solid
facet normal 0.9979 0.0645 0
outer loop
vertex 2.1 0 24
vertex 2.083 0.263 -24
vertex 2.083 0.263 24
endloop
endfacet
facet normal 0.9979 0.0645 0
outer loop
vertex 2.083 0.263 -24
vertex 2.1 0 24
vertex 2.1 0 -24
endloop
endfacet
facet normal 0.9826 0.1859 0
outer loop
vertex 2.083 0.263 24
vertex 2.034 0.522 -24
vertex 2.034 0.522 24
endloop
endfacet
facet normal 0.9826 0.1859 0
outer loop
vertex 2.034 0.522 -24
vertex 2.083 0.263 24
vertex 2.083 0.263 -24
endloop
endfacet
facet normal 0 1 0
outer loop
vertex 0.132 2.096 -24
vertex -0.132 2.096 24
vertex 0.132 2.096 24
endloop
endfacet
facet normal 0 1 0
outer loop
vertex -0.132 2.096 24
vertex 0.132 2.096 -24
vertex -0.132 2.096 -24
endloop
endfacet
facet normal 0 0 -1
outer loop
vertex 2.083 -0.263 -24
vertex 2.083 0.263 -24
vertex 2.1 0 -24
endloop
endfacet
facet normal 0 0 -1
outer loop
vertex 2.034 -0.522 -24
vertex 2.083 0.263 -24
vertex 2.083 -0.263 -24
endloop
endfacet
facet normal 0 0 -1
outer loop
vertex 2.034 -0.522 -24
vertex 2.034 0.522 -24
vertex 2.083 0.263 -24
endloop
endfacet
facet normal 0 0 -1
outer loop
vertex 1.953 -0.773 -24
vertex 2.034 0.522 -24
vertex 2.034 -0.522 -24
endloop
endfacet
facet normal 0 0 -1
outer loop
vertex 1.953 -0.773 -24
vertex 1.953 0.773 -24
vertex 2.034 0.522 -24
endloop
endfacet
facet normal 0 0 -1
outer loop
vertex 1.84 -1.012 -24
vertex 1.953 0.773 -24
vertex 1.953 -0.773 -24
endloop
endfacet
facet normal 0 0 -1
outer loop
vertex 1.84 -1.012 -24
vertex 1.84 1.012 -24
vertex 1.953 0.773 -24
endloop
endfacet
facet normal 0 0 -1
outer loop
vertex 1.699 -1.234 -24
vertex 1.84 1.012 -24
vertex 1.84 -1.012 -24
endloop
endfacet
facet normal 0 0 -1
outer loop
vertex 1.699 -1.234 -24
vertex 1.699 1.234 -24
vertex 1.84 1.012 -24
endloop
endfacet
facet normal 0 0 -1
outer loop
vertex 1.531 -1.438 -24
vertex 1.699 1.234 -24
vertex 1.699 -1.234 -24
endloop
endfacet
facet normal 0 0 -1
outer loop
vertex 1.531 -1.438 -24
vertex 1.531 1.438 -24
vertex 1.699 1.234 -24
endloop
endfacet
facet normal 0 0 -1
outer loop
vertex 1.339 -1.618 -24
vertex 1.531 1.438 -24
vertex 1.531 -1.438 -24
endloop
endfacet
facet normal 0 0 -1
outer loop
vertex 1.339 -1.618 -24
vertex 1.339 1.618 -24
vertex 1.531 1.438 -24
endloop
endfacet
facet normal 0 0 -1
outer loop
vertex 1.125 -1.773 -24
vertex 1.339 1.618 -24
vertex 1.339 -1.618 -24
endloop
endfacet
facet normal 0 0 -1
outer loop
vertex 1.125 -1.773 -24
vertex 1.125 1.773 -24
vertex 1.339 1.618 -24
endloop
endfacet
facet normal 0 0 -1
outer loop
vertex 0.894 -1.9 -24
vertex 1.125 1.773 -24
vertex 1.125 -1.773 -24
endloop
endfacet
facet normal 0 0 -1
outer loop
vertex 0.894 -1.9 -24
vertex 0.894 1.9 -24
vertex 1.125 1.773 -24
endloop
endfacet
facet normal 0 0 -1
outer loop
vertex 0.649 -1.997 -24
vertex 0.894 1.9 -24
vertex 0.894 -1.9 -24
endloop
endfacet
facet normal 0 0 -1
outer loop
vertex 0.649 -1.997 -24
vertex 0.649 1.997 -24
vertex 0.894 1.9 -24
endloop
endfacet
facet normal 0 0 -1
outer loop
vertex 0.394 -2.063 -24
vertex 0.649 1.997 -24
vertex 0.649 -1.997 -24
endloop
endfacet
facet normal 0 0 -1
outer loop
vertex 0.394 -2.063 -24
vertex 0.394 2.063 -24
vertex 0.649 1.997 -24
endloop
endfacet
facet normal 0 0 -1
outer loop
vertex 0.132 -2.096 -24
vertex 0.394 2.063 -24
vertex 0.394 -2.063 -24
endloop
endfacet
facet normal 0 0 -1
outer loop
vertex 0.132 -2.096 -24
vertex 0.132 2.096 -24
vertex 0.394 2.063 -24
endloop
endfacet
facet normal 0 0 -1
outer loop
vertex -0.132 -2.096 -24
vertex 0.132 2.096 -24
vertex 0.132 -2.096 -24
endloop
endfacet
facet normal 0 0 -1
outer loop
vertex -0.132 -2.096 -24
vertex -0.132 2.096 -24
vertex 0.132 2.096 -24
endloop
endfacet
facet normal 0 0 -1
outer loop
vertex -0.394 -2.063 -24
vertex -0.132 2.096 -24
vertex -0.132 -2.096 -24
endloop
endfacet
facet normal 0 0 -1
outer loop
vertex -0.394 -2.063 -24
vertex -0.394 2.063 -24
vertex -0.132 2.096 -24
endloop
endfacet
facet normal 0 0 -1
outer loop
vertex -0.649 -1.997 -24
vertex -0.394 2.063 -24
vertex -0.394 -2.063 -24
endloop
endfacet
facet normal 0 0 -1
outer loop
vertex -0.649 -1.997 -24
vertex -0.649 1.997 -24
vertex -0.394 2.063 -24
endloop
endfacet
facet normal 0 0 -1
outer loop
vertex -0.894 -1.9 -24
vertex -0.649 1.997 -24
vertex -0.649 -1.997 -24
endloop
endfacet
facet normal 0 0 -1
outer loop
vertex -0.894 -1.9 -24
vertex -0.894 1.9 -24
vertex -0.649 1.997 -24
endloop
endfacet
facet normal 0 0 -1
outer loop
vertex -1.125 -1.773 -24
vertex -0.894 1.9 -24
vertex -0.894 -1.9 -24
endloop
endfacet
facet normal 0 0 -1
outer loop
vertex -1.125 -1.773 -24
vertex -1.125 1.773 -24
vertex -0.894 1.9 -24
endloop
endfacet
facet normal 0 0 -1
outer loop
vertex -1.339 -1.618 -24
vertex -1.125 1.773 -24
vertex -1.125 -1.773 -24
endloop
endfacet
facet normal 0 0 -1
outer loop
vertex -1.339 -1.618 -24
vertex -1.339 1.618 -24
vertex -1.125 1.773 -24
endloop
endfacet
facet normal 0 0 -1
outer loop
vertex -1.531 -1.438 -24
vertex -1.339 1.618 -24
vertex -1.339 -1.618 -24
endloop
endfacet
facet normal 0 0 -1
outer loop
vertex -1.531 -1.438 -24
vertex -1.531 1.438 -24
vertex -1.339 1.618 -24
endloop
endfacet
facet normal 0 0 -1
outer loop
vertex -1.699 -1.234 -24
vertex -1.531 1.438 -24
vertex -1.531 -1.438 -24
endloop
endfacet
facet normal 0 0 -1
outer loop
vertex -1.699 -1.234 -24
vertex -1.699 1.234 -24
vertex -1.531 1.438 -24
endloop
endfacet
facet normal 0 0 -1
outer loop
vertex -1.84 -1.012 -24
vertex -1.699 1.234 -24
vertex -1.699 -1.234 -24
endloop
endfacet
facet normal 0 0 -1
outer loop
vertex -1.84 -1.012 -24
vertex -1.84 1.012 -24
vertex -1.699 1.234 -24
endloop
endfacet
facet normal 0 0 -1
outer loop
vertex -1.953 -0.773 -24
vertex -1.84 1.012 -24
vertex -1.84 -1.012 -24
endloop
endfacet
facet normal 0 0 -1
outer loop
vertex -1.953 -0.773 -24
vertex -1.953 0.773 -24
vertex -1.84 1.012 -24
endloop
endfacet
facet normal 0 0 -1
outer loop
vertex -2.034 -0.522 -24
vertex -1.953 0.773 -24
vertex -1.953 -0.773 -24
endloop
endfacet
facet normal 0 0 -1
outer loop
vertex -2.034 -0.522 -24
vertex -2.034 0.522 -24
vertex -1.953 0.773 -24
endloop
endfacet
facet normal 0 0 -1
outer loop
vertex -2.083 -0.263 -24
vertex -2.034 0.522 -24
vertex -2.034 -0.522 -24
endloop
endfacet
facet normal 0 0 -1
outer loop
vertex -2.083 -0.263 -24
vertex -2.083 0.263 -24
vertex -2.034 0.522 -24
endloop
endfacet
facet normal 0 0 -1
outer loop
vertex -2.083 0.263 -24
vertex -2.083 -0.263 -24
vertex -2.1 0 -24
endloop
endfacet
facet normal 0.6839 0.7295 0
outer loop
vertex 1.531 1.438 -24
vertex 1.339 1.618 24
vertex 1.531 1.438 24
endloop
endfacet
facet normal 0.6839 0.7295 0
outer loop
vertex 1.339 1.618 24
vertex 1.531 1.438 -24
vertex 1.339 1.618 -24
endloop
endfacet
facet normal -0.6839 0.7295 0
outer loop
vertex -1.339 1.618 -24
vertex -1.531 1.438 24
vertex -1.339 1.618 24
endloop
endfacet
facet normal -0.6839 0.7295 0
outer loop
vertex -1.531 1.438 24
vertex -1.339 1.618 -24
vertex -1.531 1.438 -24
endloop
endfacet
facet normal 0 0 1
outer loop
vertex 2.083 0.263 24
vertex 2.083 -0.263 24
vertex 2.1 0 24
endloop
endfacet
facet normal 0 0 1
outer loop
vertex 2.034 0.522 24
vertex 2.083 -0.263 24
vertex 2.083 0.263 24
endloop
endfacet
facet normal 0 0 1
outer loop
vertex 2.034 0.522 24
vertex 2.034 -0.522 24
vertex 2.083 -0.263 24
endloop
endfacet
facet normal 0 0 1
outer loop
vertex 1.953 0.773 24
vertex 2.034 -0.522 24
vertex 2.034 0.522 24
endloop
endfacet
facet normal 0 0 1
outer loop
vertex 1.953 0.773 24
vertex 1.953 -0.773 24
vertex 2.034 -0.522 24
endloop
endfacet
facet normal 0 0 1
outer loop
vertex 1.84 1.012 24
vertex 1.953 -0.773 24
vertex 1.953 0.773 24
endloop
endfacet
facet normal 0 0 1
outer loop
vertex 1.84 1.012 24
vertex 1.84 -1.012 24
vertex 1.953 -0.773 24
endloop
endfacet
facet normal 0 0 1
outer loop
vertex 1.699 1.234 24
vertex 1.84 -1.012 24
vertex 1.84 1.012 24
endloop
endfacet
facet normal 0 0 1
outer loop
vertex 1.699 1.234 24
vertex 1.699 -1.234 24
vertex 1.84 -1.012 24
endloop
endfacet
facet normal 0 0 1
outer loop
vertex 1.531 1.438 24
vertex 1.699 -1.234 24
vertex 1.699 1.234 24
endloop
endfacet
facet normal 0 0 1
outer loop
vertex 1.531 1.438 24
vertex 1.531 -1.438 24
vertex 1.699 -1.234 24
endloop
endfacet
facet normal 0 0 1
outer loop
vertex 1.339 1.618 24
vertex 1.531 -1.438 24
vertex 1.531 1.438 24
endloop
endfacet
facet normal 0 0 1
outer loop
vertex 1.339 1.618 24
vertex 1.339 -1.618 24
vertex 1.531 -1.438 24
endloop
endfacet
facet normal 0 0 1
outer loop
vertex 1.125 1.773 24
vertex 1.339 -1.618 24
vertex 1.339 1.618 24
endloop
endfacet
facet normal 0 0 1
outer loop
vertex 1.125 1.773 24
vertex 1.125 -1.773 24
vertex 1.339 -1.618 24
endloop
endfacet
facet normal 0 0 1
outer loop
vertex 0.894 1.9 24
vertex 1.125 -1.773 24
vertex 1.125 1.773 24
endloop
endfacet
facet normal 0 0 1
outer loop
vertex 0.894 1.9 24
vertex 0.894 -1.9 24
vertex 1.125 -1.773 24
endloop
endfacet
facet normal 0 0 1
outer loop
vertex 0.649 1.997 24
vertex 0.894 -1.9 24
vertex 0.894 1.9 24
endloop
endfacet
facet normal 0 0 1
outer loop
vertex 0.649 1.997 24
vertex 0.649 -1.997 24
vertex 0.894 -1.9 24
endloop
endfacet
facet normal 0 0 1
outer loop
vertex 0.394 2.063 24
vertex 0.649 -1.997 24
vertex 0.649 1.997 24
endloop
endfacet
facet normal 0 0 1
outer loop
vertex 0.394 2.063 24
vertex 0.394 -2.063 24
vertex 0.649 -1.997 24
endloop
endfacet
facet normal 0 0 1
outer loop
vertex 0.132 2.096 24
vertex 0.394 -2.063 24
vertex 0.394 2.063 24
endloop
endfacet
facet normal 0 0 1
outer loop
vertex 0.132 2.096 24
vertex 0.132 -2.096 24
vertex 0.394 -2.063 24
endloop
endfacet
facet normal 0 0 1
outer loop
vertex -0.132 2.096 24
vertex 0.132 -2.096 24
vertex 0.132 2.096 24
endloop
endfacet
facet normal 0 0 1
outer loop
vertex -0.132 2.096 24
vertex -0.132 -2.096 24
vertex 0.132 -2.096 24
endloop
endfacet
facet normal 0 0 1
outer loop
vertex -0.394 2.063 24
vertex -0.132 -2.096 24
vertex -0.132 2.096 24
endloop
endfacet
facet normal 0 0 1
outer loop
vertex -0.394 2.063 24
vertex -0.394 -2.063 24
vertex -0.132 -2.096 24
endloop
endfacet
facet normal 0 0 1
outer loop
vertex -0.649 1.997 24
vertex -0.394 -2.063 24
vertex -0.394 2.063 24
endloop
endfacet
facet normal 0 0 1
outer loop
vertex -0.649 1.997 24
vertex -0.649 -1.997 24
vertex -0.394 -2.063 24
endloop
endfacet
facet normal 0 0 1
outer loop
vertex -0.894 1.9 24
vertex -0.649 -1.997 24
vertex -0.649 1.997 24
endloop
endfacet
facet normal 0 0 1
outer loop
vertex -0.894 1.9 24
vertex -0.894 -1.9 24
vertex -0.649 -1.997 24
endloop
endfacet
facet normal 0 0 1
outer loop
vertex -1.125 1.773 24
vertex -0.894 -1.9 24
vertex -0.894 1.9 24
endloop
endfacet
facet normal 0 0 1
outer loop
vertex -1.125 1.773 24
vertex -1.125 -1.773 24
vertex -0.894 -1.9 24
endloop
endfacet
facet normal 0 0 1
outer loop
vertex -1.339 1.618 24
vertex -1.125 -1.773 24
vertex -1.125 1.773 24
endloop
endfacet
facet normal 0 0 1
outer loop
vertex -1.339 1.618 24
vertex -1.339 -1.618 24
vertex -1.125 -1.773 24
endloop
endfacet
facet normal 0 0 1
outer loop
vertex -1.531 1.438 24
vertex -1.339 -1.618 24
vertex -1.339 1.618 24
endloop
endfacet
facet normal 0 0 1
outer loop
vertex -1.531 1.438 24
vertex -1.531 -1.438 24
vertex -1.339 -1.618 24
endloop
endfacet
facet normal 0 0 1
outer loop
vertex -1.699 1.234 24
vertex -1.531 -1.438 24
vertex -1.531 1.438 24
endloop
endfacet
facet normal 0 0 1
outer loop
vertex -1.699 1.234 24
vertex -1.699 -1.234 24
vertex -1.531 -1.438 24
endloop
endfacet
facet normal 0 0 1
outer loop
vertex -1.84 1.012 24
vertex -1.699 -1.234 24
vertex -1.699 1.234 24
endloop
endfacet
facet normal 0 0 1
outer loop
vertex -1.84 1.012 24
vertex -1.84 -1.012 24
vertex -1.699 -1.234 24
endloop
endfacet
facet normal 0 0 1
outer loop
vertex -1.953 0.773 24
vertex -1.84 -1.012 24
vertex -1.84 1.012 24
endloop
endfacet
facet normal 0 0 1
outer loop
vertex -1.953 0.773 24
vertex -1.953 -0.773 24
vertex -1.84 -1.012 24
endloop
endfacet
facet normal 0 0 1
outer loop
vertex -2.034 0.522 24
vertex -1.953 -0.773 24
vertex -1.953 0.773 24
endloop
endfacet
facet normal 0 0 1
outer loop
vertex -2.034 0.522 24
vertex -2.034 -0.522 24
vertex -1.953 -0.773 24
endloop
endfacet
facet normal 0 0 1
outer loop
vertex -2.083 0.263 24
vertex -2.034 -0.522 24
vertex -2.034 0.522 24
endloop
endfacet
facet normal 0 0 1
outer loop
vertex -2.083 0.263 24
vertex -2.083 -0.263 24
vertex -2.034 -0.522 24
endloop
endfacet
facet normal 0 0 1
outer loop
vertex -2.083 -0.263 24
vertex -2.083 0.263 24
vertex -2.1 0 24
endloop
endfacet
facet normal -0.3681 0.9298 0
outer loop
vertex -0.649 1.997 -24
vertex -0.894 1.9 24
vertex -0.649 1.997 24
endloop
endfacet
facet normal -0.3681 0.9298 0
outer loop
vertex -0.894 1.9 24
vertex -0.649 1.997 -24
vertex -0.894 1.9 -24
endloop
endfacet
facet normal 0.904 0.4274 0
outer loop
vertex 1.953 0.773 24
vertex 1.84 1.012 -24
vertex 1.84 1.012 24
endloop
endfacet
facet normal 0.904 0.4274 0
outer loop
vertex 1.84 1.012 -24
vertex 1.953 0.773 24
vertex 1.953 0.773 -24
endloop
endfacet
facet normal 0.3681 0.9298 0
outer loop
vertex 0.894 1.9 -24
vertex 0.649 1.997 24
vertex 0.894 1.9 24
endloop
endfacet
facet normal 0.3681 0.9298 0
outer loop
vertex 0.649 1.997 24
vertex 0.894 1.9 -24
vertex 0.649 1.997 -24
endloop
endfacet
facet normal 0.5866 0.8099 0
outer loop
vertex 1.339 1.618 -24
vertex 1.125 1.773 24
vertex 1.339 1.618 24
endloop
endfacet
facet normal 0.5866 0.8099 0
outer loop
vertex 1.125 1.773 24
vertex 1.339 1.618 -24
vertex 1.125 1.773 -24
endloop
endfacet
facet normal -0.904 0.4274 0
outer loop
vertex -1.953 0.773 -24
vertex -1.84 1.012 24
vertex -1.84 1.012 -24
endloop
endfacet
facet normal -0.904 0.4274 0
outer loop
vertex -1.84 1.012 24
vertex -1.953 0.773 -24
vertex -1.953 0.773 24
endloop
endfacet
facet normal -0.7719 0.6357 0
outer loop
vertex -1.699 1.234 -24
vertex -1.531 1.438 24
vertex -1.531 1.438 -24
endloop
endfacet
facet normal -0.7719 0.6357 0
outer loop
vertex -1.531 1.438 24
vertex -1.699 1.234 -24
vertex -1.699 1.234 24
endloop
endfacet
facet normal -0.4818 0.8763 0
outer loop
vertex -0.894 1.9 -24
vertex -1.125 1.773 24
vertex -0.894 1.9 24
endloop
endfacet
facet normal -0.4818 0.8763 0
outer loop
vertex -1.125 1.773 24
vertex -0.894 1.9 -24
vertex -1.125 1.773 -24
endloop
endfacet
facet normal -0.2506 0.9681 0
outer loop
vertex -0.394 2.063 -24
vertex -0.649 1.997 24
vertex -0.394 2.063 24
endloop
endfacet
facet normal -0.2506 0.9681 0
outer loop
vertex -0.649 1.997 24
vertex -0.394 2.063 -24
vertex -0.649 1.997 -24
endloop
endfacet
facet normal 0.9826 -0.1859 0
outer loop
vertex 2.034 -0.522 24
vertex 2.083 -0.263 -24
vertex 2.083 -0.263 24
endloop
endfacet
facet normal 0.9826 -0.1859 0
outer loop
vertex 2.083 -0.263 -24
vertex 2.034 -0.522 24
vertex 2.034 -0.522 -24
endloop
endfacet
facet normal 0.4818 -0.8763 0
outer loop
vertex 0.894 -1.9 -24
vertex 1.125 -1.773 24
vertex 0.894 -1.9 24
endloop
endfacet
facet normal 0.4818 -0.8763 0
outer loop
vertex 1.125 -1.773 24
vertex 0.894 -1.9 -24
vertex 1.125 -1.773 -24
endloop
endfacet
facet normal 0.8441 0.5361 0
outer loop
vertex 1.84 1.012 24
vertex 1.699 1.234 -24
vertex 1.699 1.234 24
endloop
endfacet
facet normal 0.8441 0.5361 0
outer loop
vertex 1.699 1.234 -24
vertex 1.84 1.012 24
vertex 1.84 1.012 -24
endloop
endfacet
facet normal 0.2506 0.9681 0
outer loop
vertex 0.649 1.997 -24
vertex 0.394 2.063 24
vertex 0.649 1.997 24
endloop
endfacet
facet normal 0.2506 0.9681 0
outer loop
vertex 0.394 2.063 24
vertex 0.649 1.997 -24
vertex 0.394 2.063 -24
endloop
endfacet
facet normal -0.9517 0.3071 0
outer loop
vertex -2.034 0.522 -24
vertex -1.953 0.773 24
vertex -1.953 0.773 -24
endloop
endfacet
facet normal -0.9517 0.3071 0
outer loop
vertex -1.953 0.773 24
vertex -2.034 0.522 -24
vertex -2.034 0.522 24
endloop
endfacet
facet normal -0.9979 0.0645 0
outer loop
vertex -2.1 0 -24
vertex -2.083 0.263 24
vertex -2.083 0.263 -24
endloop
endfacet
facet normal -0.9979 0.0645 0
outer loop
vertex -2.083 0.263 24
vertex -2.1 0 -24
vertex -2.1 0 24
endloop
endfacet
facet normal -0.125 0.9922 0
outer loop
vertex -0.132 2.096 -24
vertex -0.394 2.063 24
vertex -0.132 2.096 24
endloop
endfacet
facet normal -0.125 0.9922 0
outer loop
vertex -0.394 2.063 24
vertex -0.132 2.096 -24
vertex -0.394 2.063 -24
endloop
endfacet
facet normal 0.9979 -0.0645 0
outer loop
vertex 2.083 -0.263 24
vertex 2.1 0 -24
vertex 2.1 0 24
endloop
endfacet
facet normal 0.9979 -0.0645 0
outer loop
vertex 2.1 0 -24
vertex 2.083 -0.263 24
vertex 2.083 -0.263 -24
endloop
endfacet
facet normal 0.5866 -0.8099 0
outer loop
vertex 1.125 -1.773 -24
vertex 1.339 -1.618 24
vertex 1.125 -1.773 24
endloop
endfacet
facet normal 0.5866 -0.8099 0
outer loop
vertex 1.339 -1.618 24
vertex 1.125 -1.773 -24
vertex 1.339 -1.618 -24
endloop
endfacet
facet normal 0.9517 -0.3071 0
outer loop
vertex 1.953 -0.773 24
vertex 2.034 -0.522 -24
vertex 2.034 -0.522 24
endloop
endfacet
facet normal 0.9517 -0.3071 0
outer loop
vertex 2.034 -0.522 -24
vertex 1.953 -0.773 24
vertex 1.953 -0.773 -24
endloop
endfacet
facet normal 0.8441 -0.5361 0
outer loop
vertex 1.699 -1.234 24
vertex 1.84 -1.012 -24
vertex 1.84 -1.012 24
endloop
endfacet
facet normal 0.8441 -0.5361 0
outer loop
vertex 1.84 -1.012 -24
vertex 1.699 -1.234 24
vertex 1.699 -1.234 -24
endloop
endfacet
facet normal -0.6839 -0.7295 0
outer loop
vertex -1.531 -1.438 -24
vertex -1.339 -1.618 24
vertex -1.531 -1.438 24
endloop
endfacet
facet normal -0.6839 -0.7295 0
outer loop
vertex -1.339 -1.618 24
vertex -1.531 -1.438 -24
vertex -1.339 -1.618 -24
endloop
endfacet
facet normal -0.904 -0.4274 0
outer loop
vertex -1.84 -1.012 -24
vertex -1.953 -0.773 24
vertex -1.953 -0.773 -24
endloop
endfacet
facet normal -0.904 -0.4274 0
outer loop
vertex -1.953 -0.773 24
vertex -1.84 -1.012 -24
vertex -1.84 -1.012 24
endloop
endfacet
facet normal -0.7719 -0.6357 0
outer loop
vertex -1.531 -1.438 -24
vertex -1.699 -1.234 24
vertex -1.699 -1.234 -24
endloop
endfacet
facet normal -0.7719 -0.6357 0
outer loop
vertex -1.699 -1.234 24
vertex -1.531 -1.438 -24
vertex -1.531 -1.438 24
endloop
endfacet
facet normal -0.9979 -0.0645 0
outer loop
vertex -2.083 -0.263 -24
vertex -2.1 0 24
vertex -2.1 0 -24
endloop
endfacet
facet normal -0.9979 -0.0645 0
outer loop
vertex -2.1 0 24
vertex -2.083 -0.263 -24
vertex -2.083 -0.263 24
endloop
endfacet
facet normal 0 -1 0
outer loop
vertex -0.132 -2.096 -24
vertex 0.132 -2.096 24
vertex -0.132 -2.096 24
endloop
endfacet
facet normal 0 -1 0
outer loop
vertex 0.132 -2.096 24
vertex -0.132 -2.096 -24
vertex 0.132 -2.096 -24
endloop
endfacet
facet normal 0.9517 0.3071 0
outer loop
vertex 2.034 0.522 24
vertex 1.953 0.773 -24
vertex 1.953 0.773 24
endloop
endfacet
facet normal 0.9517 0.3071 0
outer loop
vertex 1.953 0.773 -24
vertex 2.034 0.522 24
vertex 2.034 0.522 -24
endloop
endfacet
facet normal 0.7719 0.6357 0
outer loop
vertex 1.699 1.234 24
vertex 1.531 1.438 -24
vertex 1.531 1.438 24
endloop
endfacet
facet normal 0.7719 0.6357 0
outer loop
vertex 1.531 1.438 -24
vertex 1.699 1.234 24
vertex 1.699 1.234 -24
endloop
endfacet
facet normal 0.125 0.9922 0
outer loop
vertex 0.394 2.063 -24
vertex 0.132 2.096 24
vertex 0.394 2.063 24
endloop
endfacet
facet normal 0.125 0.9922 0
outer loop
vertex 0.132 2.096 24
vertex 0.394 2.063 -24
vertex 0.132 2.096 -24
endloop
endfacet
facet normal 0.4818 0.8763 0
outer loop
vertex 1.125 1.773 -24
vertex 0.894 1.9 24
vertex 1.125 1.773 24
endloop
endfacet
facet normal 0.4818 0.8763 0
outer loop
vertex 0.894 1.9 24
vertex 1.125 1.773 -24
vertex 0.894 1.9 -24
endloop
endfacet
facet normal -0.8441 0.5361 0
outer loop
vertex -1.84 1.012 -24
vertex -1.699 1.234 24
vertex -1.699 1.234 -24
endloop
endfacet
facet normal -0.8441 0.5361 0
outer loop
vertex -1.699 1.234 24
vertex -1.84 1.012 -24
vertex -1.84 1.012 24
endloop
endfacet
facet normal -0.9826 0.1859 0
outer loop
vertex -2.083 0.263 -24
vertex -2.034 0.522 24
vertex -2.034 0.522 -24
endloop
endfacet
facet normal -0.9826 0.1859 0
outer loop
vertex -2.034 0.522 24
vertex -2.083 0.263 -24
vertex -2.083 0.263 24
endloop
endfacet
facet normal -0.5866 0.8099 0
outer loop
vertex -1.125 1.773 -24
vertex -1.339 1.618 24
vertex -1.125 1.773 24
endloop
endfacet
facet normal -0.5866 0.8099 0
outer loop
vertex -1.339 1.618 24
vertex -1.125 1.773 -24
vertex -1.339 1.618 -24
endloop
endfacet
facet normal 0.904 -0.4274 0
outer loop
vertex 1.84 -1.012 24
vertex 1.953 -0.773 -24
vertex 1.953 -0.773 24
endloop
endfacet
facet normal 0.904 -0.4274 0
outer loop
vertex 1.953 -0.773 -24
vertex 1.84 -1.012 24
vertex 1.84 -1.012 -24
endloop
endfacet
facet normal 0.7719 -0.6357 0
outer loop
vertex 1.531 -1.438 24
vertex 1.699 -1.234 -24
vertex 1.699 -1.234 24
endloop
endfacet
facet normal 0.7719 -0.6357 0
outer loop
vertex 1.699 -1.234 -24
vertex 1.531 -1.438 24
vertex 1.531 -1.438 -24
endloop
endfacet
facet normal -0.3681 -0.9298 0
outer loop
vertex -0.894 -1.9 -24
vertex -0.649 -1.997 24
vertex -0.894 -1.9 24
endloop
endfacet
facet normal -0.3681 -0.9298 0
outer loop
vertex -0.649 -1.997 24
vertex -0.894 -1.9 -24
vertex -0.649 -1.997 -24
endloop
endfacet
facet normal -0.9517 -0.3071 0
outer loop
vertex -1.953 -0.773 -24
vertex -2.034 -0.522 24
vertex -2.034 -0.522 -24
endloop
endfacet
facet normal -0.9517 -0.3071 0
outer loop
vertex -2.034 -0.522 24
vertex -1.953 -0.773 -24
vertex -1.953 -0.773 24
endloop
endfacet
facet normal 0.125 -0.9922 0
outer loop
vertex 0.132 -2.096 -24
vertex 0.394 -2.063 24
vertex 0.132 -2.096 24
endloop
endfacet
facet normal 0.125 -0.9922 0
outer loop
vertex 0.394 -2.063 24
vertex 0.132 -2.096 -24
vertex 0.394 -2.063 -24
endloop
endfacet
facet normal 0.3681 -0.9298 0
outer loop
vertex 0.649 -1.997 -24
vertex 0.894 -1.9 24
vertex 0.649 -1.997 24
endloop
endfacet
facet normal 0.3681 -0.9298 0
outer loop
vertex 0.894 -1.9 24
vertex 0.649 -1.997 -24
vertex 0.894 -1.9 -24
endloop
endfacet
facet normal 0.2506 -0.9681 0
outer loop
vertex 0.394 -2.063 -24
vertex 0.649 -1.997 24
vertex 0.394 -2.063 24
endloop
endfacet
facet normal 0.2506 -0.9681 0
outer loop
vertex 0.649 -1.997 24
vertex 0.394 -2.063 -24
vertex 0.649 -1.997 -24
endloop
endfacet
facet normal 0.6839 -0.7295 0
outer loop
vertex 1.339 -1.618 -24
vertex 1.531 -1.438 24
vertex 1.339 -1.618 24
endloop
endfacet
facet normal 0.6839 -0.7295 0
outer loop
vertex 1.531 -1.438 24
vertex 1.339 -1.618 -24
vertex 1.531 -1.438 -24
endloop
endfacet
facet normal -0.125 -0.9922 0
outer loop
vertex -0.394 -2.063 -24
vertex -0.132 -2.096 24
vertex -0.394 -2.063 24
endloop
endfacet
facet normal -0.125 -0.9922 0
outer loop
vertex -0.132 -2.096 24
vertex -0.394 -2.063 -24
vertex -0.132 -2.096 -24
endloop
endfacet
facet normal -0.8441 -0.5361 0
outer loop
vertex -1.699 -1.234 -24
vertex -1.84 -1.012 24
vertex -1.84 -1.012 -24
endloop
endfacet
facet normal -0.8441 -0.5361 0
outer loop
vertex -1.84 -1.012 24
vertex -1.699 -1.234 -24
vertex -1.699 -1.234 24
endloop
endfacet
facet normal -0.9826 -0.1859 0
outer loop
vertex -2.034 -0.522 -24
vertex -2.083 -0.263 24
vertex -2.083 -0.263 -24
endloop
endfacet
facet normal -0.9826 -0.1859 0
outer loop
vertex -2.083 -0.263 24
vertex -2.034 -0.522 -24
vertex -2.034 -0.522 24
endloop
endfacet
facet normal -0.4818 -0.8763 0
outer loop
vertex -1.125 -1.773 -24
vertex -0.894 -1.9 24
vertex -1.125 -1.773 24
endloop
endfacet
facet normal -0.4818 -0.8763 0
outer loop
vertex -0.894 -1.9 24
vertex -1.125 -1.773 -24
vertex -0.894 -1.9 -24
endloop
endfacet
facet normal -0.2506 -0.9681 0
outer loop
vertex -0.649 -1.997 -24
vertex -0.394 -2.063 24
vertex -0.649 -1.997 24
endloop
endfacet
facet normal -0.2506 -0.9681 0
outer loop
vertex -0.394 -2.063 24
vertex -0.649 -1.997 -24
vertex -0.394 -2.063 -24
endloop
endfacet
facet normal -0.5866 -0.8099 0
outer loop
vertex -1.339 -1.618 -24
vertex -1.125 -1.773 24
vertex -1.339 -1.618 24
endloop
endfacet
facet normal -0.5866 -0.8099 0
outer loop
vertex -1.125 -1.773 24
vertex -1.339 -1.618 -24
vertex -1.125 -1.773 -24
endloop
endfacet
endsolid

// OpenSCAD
$fn = 50;


difference() {
	union() {
		translate(v = [0, 0, -24.0000000000]) {
			cylinder(h = 48, r = 2.1000000000);
		}
	}
	union() {
		translate(v = [0, 0, -100.0000000000]) {
			cylinder(h = 200, r = 0);
		}
	}
}
